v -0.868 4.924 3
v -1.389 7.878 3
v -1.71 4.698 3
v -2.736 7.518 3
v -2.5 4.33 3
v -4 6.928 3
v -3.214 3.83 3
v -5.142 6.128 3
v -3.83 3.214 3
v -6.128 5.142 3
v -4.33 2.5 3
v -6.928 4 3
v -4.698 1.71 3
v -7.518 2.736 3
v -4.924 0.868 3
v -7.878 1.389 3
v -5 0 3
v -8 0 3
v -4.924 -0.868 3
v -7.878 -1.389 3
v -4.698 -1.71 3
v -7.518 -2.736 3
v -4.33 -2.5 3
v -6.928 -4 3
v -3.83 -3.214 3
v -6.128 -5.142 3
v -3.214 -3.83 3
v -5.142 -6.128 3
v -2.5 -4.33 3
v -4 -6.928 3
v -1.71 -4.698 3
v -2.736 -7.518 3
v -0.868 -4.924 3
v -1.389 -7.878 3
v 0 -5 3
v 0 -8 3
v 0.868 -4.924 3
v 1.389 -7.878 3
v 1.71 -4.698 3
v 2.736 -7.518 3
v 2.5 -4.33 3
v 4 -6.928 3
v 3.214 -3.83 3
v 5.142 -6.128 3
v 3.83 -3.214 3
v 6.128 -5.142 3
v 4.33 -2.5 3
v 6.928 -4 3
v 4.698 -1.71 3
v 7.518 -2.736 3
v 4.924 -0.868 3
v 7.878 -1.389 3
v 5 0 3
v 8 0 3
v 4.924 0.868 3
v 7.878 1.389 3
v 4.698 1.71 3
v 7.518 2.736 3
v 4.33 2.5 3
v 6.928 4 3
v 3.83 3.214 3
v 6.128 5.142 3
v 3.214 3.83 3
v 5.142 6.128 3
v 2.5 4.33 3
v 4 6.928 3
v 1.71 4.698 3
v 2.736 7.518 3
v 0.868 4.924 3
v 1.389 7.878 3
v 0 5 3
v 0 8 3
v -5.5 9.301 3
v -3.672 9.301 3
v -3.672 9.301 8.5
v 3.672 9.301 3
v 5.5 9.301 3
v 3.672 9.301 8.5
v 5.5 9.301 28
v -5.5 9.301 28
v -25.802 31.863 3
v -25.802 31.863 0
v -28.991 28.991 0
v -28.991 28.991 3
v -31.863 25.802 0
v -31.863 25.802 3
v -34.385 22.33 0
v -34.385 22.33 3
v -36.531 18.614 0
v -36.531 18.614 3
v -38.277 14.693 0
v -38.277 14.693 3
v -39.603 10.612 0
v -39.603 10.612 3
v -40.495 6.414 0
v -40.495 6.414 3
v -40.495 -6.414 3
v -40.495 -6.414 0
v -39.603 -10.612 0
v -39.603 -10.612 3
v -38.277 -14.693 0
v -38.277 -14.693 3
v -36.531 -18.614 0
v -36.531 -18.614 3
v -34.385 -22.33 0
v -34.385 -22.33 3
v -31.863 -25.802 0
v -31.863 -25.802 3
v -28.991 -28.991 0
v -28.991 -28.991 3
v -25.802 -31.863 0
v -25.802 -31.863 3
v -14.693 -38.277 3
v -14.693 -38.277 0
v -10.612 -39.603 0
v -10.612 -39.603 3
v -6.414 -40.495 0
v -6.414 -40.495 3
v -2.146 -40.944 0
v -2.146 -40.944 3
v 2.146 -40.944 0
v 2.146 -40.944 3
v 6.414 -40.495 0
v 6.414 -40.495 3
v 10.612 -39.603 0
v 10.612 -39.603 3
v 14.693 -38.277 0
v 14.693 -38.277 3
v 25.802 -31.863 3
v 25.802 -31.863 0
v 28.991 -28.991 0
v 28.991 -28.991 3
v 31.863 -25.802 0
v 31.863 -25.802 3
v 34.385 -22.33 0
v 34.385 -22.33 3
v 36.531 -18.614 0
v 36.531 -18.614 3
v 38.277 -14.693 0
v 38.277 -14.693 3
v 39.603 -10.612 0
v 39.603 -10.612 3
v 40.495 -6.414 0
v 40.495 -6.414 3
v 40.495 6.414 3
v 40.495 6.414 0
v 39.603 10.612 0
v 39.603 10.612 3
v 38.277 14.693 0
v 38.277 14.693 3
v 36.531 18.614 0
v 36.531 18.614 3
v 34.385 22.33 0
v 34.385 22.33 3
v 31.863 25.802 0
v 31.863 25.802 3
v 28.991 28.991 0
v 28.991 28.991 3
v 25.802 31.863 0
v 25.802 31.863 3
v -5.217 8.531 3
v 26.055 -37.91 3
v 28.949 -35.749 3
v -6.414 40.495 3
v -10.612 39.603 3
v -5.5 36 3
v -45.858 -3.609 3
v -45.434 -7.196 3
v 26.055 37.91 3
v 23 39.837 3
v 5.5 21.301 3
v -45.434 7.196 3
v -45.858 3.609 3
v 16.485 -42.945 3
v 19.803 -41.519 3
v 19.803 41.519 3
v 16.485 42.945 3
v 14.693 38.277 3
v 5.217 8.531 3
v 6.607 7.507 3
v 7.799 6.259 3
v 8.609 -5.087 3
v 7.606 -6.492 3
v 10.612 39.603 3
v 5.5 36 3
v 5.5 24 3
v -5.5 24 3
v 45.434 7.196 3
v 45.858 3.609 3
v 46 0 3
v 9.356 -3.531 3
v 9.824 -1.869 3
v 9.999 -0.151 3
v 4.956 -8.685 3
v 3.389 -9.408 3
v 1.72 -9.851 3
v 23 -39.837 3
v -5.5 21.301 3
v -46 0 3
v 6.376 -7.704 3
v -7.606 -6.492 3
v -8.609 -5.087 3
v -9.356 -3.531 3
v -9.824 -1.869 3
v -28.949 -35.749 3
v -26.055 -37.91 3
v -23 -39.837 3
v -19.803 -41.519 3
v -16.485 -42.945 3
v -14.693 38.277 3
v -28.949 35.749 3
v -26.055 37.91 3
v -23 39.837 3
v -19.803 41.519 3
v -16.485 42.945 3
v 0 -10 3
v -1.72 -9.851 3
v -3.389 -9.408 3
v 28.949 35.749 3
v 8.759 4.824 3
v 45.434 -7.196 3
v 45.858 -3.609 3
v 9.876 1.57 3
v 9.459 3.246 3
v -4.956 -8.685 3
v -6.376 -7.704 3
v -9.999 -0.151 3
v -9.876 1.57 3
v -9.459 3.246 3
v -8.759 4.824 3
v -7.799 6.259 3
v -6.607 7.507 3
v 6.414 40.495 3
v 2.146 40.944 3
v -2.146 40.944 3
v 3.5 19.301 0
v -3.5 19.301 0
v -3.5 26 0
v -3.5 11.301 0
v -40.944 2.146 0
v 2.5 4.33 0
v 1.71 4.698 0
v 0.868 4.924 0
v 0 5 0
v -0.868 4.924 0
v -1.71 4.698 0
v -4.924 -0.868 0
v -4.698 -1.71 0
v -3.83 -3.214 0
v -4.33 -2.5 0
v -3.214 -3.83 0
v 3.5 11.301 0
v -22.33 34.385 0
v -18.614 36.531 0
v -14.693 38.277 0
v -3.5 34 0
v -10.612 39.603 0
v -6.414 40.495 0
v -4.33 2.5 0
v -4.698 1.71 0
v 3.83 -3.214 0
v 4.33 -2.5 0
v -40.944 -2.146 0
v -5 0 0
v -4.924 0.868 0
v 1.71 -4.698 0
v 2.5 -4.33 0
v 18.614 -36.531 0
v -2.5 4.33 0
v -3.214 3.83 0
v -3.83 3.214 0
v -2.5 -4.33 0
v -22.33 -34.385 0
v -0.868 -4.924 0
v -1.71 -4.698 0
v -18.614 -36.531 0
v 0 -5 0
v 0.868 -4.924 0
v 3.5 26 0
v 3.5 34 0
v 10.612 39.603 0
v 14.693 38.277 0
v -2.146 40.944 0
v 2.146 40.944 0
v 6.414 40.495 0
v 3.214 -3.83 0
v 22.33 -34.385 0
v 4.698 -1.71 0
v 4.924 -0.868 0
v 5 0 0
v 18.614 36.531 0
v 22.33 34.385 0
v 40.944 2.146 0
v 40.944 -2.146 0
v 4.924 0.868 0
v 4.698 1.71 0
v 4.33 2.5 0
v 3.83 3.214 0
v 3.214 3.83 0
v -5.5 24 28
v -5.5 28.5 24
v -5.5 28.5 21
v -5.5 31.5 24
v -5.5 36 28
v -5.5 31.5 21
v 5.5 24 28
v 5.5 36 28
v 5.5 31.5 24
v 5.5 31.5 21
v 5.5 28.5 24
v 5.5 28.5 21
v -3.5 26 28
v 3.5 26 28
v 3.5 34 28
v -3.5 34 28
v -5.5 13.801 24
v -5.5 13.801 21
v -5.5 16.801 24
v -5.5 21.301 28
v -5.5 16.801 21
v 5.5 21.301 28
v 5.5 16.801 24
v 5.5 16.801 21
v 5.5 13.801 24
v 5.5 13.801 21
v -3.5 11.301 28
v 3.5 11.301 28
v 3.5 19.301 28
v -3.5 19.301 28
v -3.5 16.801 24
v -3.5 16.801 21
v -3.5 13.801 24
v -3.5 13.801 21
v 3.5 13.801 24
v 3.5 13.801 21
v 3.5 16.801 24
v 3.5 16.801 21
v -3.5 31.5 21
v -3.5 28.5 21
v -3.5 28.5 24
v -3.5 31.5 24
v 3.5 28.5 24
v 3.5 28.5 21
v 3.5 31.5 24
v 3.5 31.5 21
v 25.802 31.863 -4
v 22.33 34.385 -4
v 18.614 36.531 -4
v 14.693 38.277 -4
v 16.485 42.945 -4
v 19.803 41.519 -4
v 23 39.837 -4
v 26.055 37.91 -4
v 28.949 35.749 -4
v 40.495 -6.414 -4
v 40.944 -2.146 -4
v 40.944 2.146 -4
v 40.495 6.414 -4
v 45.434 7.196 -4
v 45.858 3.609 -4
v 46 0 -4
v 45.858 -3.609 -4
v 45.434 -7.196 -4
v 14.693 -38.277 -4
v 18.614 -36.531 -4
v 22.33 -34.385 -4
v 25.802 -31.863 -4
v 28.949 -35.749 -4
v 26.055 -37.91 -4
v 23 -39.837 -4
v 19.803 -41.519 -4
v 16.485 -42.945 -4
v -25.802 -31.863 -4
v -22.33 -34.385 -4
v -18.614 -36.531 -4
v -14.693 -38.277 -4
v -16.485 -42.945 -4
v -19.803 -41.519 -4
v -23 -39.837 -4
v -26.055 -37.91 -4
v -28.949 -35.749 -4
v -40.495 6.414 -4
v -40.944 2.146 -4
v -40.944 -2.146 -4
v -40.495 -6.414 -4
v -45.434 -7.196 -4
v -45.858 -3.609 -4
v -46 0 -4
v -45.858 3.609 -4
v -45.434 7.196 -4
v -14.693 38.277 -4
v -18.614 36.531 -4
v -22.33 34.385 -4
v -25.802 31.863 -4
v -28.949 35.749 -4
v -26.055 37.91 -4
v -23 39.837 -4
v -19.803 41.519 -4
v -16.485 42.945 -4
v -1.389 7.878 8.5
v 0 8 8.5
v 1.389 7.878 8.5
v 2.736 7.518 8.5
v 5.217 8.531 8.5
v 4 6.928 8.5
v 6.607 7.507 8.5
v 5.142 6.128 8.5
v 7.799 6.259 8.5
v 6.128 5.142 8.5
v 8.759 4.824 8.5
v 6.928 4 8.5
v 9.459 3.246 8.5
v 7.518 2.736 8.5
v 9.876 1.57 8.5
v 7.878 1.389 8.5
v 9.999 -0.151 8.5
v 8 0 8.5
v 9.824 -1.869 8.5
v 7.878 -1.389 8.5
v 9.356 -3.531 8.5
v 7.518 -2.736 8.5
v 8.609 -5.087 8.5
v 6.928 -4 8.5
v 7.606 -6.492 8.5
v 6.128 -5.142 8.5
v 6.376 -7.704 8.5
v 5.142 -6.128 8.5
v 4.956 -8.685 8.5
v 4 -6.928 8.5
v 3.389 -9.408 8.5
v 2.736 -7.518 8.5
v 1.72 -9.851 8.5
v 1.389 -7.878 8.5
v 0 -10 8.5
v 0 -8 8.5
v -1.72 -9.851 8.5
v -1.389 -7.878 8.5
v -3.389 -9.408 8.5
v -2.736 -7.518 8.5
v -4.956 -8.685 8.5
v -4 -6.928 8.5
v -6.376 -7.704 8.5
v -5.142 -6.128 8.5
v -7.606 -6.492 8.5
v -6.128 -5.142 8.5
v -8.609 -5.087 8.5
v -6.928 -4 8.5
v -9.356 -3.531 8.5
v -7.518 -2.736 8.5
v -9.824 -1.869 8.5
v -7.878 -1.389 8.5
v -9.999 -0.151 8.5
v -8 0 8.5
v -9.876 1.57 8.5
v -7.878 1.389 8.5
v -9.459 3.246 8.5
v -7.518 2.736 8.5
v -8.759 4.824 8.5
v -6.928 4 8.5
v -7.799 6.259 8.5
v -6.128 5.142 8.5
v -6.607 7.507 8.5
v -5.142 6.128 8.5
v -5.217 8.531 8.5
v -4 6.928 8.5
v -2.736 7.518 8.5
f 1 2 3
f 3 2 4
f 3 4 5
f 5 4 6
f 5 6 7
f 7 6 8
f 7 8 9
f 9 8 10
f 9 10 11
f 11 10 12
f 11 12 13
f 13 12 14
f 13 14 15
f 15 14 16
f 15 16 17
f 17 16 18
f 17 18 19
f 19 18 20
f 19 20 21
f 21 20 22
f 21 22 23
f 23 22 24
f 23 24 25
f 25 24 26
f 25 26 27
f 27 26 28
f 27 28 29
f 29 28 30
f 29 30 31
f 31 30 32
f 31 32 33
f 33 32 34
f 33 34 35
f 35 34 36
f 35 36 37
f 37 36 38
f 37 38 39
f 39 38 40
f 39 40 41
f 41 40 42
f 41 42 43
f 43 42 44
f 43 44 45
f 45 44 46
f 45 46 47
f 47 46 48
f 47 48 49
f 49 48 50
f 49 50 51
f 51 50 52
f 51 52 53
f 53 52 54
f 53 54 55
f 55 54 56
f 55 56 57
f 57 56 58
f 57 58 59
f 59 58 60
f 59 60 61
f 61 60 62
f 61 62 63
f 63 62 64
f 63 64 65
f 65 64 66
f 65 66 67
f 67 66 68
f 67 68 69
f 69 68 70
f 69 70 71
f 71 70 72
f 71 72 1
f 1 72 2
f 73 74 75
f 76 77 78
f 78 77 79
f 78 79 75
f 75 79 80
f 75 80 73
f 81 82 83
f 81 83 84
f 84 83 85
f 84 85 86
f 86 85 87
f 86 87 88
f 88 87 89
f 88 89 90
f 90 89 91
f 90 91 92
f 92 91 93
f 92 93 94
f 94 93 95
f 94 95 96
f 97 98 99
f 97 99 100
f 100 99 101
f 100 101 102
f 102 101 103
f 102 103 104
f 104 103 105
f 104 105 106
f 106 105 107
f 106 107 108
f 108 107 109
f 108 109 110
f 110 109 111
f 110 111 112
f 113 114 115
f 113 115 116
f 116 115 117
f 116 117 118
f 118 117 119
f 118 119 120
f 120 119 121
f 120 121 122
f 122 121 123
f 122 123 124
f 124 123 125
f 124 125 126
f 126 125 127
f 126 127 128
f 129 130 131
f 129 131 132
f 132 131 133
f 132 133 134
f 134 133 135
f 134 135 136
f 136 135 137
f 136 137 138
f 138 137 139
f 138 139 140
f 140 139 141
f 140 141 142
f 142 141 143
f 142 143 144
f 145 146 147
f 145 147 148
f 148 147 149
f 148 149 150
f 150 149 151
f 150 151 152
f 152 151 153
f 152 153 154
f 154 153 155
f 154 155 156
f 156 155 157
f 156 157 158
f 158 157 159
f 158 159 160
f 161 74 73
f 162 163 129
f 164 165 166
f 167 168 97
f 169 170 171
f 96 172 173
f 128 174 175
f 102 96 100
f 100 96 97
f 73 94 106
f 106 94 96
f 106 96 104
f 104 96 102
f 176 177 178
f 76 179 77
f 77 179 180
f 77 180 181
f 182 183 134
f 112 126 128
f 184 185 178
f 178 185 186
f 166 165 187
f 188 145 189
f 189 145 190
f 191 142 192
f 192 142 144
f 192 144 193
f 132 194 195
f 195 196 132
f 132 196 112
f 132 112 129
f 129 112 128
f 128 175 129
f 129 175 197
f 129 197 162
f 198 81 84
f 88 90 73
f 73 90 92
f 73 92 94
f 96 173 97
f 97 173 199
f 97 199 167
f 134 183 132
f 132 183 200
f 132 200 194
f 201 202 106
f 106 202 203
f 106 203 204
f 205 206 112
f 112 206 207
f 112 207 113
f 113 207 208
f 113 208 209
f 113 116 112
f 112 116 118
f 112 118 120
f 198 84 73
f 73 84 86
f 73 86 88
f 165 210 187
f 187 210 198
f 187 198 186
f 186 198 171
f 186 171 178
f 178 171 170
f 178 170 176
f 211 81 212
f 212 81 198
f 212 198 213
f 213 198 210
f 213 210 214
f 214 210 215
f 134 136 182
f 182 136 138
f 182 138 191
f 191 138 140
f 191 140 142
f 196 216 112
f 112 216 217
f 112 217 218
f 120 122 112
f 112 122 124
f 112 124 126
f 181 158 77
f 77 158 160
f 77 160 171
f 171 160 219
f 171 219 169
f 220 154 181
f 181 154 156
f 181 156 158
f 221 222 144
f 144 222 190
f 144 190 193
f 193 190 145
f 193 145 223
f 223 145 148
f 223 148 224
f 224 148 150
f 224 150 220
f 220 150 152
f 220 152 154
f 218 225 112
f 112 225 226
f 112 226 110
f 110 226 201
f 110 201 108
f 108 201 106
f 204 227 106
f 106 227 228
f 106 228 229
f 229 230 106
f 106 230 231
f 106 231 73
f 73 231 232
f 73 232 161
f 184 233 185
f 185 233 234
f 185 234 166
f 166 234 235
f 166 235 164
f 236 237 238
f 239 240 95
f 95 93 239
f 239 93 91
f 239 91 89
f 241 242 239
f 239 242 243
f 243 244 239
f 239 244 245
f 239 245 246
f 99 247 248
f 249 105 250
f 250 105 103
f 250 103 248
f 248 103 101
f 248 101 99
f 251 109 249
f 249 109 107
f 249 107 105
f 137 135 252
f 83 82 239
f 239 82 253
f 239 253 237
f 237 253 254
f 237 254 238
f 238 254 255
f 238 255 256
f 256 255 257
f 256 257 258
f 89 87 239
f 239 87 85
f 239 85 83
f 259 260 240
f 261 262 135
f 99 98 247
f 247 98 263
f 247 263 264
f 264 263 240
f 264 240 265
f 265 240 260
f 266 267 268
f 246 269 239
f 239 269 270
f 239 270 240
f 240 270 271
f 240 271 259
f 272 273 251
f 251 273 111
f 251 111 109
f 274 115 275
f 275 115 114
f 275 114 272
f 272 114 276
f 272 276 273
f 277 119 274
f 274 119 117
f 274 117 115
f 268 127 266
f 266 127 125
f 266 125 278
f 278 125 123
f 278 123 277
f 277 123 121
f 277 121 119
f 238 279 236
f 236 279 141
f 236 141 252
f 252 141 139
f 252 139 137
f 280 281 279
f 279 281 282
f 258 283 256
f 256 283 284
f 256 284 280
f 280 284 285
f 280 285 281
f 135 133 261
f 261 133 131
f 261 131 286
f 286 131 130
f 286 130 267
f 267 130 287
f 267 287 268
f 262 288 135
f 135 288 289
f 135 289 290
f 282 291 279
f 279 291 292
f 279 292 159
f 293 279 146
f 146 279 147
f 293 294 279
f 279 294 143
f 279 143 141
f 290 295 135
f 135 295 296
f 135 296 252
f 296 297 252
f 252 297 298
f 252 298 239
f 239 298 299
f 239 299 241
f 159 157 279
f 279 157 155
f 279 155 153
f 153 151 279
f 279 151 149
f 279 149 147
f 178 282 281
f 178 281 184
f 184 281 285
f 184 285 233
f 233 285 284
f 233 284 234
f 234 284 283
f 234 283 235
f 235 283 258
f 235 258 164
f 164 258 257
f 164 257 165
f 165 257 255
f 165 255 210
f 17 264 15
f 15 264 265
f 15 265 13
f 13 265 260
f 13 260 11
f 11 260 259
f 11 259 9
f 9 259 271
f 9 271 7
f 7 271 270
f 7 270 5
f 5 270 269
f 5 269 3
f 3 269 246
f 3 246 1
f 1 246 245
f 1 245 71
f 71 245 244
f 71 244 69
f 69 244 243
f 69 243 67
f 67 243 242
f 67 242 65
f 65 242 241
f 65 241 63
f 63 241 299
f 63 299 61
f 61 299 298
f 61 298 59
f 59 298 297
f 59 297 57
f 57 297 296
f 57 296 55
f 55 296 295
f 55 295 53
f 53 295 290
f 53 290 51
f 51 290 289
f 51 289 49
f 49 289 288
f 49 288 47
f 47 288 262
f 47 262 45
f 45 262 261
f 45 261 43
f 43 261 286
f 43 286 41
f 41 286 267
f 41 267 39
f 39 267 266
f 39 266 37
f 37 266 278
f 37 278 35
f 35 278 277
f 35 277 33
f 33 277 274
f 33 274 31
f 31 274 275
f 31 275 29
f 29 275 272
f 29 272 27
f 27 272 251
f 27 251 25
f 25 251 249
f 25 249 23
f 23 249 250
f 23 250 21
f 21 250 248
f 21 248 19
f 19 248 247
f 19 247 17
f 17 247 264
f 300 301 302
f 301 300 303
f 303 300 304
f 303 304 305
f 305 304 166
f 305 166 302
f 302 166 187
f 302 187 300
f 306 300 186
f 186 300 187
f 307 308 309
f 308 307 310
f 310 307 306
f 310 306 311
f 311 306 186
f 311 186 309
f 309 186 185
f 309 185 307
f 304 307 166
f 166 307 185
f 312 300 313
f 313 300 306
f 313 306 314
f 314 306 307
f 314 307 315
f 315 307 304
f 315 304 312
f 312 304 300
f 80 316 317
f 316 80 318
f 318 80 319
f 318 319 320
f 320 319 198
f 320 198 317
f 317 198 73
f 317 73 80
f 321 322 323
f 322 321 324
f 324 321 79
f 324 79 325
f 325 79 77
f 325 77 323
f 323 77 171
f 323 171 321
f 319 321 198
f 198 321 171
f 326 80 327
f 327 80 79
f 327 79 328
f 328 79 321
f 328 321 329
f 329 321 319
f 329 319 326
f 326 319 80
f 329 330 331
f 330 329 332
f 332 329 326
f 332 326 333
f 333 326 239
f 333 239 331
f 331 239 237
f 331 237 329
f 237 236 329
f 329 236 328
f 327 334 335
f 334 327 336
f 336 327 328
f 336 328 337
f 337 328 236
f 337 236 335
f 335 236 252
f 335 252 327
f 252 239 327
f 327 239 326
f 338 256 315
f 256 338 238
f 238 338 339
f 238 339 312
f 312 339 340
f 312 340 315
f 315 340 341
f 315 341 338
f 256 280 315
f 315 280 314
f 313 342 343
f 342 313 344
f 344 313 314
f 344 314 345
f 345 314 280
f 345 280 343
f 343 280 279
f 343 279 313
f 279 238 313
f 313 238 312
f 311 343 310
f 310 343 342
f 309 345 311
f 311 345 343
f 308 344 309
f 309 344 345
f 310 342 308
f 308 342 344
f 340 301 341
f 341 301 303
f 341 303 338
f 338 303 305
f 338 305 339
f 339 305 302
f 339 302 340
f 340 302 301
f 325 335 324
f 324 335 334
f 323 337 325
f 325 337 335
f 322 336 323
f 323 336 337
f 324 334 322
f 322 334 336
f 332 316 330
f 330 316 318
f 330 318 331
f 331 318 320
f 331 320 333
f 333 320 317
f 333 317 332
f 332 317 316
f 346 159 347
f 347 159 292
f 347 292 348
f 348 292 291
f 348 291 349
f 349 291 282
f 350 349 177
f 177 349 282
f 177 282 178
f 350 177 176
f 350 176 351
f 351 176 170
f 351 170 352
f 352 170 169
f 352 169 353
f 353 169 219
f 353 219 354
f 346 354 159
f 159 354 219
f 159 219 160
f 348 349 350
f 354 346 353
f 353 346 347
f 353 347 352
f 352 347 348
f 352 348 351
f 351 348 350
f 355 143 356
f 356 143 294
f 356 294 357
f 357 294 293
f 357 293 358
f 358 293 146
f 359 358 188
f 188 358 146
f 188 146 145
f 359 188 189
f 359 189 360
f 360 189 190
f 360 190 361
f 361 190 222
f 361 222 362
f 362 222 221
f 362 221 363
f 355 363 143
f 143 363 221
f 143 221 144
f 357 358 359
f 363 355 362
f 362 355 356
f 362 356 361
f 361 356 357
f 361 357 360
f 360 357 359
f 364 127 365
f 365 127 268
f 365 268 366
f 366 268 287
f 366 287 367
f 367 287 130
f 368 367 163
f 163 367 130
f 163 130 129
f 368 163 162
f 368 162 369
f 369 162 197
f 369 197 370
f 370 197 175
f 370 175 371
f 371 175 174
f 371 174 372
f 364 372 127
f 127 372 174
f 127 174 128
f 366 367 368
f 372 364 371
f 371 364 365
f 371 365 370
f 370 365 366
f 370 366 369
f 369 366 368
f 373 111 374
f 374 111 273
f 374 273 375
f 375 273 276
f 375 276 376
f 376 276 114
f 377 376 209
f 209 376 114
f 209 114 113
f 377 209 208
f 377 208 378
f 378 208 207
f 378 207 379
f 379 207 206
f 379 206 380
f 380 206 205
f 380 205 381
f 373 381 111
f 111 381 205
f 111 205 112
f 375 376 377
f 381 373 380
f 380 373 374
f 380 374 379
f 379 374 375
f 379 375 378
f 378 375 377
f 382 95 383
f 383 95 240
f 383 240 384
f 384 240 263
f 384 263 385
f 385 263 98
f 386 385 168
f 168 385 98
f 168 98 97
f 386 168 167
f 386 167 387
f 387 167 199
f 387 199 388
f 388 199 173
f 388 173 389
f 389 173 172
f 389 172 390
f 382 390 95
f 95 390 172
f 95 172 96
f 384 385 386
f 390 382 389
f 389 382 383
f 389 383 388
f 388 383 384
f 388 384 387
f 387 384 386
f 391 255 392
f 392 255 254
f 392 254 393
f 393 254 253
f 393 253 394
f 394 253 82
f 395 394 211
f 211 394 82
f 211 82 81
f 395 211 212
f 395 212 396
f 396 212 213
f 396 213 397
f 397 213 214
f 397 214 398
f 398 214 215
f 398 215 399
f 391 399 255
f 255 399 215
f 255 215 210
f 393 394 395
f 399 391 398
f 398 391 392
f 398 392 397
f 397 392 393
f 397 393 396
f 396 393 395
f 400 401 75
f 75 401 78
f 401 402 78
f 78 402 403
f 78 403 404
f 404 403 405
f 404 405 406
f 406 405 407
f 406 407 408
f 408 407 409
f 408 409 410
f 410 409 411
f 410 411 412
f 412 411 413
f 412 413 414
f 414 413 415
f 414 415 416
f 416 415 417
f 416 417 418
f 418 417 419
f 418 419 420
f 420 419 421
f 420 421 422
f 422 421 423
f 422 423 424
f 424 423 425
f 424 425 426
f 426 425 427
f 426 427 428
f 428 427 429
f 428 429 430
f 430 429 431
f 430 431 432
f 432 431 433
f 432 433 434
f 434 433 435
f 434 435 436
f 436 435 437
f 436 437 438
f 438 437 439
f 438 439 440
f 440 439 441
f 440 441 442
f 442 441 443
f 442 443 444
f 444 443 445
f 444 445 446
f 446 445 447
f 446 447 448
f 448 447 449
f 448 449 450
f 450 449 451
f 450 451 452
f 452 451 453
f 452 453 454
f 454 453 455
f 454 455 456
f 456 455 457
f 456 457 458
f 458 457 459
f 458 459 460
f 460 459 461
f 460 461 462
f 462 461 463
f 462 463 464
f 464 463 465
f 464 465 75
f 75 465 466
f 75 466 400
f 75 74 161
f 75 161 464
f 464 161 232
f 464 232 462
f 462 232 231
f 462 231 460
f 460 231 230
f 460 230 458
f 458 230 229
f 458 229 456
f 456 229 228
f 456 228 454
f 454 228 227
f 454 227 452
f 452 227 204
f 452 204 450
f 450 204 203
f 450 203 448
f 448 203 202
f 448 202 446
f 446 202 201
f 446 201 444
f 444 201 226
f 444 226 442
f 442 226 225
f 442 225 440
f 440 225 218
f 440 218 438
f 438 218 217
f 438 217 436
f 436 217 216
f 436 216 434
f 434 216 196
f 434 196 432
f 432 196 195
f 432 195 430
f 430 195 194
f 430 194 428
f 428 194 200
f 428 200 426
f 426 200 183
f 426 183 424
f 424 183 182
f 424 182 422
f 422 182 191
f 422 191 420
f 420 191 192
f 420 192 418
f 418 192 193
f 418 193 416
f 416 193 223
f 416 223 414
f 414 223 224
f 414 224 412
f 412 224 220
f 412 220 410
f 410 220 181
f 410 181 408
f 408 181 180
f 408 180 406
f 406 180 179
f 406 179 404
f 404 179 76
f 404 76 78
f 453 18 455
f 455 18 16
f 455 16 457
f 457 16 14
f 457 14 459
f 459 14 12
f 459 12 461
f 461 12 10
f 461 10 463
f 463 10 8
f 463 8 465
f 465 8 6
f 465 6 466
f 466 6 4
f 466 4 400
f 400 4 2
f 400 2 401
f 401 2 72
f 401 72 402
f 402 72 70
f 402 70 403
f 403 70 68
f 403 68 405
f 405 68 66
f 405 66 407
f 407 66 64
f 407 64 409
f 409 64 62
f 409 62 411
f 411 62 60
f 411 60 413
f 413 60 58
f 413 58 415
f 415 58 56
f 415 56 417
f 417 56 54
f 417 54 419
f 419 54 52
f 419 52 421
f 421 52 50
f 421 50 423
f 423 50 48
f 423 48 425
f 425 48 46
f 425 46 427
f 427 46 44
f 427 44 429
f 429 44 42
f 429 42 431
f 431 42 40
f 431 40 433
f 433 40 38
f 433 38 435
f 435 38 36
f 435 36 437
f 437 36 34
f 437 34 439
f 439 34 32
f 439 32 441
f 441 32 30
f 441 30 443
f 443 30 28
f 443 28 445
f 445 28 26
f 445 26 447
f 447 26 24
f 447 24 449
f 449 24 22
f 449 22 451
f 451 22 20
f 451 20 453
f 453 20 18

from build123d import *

# Parameters (mm, degrees)
SKETCH1_R           = 41
SKETCH1_R_2         = 5
BOSS_EXTRUDE1_DEPTH = 3
SKETCH2_W           = 11
SKETCH2_H           = 12
BOSS_EXTRUDE2_DEPTH = 25
SKETCH3_W           = 7
SKETCH3_H           = 8
CUT_EXTRUDE1_DEPTH  = 65.389440128
SKETCH4_W           = 3
SKETCH4_H           = 3
CUT_EXTRUDE2_DEPTH  = 69.023892861
BOSS_EXTRUDE3_START = -7
BOSS_EXTRUDE3_DEPTH = 7
SKETCH6_R           = 10
SKETCH6_R_2         = 8
BOSS_EXTRUDE4_DEPTH = 5.5


with BuildPart() as part:
    # Sketch1 → Boss-Extrude1 (new body)
    with BuildSketch(Plane.XY):
        Circle(SKETCH1_R)
        Circle(SKETCH1_R_2, mode=Mode.SUBTRACT)
    extrude(amount=BOSS_EXTRUDE1_DEPTH)

    # Sketch2 → Boss-Extrude2 (add)
    with BuildSketch(Plane.XY.offset(3)):
        with Locations((0, 30)):
            Rectangle(SKETCH2_W, SKETCH2_H)
        with Locations((0, 15.301408404)):
            Rectangle(SKETCH2_W, SKETCH2_H)
    extrude(amount=BOSS_EXTRUDE2_DEPTH)

    # Sketch3 → Cut-Extrude1 (cut, through all)
    with BuildSketch(Plane.XY.offset(28)):
        with Locations((0, 30)):
            Rectangle(SKETCH3_W, SKETCH3_H)
        with Locations((0, 15.301408404)):
            Rectangle(SKETCH3_W, SKETCH3_H)
    extrude(amount=-CUT_EXTRUDE1_DEPTH, mode=Mode.SUBTRACT)

    # Sketch4 → Cut-Extrude2 (cut, through all)
    with BuildSketch(Plane(origin=(5.5, 0, 0), x_dir=(0, 0, -1), z_dir=(1, 0, 0))):
        with Locations((-22.5, 15.301408404)):
            Rectangle(SKETCH4_W, SKETCH4_H)
        with Locations((-22.5, 30)):
            Rectangle(SKETCH4_W, SKETCH4_H)
    extrude(amount=-CUT_EXTRUDE2_DEPTH, mode=Mode.SUBTRACT)

    # Sketch5 → Boss-Extrude3 (add)
    with BuildSketch(Plane.XY.offset(3).offset(BOSS_EXTRUDE3_START)):
        with BuildLine():
            Line((16.484910619, 42.944660385), (14.693085931, 38.276797486))
            ThreePointArc((14.693085931, 38.276797486), (20.5, 35.507041555), (25.802136033, 31.86298442))
            Line((25.802136033, 31.86298442), (28.948711541, 35.748681567))
            ThreePointArc((28.948711541, 35.748681567), (22.999978988, 39.837132179), (16.484910619, 42.944660385))
        make_face()
        with BuildLine():
            Line((45.43362216, 7.195978818), (40.495221964, 6.413813067))
            ThreePointArc((40.495221964, 6.413813067), (41, 0), (40.495221964, -6.413813067))
            Line((40.495221964, -6.413813067), (45.43362216, -7.195978818))
            ThreePointArc((45.43362216, -7.195978818), (45.999957975, 0), (45.43362216, 7.195978818))
        make_face()
        with BuildLine():
            Line((28.948711541, -35.748681567), (25.802136033, -31.86298442))
            ThreePointArc((25.802136033, -31.86298442), (20.5, -35.507041555), (14.693085931, -38.276797486))
            Line((14.693085931, -38.276797486), (16.484910619, -42.944660385))
            ThreePointArc((16.484910619, -42.944660385), (22.999978988, -39.837132179), (28.948711541, -35.748681567))
        make_face()
        with BuildLine():
            Line((-16.484910619, -42.944660385), (-14.693085931, -38.276797486))
            ThreePointArc((-14.693085931, -38.276797486), (-20.5, -35.507041555), (-25.802136033, -31.86298442))
            Line((-25.802136033, -31.86298442), (-28.948711541, -35.748681567))
            ThreePointArc((-28.948711541, -35.748681567), (-22.999978988, -39.837132179), (-16.484910619, -42.944660385))
        make_face()
        with BuildLine():
            Line((-45.43362216, -7.195978818), (-40.495221964, -6.413813067))
            ThreePointArc((-40.495221964, -6.413813067), (-41, 0), (-40.495221964, 6.413813067))
            Line((-40.495221964, 6.413813067), (-45.43362216, 7.195978818))
            ThreePointArc((-45.43362216, 7.195978818), (-45.999957975, 0), (-45.43362216, -7.195978818))
        make_face()
        with BuildLine():
            Line((-28.948711541, 35.748681567), (-25.802136033, 31.86298442))
            ThreePointArc((-25.802136033, 31.86298442), (-20.5, 35.507041555), (-14.693085931, 38.276797486))
            Line((-14.693085931, 38.276797486), (-16.484910619, 42.944660385))
            ThreePointArc((-16.484910619, 42.944660385), (-22.999978988, 39.837132179), (-28.948711541, 35.748681567))
        make_face()
    extrude(amount=BOSS_EXTRUDE3_DEPTH)

    # Sketch6 → Boss-Extrude4 (add)
    with BuildSketch(Plane.XY.offset(3)):
        Circle(SKETCH6_R)
        Circle(SKETCH6_R_2, mode=Mode.SUBTRACT)
    extrude(amount=BOSS_EXTRUDE4_DEPTH)


solid = part.part
